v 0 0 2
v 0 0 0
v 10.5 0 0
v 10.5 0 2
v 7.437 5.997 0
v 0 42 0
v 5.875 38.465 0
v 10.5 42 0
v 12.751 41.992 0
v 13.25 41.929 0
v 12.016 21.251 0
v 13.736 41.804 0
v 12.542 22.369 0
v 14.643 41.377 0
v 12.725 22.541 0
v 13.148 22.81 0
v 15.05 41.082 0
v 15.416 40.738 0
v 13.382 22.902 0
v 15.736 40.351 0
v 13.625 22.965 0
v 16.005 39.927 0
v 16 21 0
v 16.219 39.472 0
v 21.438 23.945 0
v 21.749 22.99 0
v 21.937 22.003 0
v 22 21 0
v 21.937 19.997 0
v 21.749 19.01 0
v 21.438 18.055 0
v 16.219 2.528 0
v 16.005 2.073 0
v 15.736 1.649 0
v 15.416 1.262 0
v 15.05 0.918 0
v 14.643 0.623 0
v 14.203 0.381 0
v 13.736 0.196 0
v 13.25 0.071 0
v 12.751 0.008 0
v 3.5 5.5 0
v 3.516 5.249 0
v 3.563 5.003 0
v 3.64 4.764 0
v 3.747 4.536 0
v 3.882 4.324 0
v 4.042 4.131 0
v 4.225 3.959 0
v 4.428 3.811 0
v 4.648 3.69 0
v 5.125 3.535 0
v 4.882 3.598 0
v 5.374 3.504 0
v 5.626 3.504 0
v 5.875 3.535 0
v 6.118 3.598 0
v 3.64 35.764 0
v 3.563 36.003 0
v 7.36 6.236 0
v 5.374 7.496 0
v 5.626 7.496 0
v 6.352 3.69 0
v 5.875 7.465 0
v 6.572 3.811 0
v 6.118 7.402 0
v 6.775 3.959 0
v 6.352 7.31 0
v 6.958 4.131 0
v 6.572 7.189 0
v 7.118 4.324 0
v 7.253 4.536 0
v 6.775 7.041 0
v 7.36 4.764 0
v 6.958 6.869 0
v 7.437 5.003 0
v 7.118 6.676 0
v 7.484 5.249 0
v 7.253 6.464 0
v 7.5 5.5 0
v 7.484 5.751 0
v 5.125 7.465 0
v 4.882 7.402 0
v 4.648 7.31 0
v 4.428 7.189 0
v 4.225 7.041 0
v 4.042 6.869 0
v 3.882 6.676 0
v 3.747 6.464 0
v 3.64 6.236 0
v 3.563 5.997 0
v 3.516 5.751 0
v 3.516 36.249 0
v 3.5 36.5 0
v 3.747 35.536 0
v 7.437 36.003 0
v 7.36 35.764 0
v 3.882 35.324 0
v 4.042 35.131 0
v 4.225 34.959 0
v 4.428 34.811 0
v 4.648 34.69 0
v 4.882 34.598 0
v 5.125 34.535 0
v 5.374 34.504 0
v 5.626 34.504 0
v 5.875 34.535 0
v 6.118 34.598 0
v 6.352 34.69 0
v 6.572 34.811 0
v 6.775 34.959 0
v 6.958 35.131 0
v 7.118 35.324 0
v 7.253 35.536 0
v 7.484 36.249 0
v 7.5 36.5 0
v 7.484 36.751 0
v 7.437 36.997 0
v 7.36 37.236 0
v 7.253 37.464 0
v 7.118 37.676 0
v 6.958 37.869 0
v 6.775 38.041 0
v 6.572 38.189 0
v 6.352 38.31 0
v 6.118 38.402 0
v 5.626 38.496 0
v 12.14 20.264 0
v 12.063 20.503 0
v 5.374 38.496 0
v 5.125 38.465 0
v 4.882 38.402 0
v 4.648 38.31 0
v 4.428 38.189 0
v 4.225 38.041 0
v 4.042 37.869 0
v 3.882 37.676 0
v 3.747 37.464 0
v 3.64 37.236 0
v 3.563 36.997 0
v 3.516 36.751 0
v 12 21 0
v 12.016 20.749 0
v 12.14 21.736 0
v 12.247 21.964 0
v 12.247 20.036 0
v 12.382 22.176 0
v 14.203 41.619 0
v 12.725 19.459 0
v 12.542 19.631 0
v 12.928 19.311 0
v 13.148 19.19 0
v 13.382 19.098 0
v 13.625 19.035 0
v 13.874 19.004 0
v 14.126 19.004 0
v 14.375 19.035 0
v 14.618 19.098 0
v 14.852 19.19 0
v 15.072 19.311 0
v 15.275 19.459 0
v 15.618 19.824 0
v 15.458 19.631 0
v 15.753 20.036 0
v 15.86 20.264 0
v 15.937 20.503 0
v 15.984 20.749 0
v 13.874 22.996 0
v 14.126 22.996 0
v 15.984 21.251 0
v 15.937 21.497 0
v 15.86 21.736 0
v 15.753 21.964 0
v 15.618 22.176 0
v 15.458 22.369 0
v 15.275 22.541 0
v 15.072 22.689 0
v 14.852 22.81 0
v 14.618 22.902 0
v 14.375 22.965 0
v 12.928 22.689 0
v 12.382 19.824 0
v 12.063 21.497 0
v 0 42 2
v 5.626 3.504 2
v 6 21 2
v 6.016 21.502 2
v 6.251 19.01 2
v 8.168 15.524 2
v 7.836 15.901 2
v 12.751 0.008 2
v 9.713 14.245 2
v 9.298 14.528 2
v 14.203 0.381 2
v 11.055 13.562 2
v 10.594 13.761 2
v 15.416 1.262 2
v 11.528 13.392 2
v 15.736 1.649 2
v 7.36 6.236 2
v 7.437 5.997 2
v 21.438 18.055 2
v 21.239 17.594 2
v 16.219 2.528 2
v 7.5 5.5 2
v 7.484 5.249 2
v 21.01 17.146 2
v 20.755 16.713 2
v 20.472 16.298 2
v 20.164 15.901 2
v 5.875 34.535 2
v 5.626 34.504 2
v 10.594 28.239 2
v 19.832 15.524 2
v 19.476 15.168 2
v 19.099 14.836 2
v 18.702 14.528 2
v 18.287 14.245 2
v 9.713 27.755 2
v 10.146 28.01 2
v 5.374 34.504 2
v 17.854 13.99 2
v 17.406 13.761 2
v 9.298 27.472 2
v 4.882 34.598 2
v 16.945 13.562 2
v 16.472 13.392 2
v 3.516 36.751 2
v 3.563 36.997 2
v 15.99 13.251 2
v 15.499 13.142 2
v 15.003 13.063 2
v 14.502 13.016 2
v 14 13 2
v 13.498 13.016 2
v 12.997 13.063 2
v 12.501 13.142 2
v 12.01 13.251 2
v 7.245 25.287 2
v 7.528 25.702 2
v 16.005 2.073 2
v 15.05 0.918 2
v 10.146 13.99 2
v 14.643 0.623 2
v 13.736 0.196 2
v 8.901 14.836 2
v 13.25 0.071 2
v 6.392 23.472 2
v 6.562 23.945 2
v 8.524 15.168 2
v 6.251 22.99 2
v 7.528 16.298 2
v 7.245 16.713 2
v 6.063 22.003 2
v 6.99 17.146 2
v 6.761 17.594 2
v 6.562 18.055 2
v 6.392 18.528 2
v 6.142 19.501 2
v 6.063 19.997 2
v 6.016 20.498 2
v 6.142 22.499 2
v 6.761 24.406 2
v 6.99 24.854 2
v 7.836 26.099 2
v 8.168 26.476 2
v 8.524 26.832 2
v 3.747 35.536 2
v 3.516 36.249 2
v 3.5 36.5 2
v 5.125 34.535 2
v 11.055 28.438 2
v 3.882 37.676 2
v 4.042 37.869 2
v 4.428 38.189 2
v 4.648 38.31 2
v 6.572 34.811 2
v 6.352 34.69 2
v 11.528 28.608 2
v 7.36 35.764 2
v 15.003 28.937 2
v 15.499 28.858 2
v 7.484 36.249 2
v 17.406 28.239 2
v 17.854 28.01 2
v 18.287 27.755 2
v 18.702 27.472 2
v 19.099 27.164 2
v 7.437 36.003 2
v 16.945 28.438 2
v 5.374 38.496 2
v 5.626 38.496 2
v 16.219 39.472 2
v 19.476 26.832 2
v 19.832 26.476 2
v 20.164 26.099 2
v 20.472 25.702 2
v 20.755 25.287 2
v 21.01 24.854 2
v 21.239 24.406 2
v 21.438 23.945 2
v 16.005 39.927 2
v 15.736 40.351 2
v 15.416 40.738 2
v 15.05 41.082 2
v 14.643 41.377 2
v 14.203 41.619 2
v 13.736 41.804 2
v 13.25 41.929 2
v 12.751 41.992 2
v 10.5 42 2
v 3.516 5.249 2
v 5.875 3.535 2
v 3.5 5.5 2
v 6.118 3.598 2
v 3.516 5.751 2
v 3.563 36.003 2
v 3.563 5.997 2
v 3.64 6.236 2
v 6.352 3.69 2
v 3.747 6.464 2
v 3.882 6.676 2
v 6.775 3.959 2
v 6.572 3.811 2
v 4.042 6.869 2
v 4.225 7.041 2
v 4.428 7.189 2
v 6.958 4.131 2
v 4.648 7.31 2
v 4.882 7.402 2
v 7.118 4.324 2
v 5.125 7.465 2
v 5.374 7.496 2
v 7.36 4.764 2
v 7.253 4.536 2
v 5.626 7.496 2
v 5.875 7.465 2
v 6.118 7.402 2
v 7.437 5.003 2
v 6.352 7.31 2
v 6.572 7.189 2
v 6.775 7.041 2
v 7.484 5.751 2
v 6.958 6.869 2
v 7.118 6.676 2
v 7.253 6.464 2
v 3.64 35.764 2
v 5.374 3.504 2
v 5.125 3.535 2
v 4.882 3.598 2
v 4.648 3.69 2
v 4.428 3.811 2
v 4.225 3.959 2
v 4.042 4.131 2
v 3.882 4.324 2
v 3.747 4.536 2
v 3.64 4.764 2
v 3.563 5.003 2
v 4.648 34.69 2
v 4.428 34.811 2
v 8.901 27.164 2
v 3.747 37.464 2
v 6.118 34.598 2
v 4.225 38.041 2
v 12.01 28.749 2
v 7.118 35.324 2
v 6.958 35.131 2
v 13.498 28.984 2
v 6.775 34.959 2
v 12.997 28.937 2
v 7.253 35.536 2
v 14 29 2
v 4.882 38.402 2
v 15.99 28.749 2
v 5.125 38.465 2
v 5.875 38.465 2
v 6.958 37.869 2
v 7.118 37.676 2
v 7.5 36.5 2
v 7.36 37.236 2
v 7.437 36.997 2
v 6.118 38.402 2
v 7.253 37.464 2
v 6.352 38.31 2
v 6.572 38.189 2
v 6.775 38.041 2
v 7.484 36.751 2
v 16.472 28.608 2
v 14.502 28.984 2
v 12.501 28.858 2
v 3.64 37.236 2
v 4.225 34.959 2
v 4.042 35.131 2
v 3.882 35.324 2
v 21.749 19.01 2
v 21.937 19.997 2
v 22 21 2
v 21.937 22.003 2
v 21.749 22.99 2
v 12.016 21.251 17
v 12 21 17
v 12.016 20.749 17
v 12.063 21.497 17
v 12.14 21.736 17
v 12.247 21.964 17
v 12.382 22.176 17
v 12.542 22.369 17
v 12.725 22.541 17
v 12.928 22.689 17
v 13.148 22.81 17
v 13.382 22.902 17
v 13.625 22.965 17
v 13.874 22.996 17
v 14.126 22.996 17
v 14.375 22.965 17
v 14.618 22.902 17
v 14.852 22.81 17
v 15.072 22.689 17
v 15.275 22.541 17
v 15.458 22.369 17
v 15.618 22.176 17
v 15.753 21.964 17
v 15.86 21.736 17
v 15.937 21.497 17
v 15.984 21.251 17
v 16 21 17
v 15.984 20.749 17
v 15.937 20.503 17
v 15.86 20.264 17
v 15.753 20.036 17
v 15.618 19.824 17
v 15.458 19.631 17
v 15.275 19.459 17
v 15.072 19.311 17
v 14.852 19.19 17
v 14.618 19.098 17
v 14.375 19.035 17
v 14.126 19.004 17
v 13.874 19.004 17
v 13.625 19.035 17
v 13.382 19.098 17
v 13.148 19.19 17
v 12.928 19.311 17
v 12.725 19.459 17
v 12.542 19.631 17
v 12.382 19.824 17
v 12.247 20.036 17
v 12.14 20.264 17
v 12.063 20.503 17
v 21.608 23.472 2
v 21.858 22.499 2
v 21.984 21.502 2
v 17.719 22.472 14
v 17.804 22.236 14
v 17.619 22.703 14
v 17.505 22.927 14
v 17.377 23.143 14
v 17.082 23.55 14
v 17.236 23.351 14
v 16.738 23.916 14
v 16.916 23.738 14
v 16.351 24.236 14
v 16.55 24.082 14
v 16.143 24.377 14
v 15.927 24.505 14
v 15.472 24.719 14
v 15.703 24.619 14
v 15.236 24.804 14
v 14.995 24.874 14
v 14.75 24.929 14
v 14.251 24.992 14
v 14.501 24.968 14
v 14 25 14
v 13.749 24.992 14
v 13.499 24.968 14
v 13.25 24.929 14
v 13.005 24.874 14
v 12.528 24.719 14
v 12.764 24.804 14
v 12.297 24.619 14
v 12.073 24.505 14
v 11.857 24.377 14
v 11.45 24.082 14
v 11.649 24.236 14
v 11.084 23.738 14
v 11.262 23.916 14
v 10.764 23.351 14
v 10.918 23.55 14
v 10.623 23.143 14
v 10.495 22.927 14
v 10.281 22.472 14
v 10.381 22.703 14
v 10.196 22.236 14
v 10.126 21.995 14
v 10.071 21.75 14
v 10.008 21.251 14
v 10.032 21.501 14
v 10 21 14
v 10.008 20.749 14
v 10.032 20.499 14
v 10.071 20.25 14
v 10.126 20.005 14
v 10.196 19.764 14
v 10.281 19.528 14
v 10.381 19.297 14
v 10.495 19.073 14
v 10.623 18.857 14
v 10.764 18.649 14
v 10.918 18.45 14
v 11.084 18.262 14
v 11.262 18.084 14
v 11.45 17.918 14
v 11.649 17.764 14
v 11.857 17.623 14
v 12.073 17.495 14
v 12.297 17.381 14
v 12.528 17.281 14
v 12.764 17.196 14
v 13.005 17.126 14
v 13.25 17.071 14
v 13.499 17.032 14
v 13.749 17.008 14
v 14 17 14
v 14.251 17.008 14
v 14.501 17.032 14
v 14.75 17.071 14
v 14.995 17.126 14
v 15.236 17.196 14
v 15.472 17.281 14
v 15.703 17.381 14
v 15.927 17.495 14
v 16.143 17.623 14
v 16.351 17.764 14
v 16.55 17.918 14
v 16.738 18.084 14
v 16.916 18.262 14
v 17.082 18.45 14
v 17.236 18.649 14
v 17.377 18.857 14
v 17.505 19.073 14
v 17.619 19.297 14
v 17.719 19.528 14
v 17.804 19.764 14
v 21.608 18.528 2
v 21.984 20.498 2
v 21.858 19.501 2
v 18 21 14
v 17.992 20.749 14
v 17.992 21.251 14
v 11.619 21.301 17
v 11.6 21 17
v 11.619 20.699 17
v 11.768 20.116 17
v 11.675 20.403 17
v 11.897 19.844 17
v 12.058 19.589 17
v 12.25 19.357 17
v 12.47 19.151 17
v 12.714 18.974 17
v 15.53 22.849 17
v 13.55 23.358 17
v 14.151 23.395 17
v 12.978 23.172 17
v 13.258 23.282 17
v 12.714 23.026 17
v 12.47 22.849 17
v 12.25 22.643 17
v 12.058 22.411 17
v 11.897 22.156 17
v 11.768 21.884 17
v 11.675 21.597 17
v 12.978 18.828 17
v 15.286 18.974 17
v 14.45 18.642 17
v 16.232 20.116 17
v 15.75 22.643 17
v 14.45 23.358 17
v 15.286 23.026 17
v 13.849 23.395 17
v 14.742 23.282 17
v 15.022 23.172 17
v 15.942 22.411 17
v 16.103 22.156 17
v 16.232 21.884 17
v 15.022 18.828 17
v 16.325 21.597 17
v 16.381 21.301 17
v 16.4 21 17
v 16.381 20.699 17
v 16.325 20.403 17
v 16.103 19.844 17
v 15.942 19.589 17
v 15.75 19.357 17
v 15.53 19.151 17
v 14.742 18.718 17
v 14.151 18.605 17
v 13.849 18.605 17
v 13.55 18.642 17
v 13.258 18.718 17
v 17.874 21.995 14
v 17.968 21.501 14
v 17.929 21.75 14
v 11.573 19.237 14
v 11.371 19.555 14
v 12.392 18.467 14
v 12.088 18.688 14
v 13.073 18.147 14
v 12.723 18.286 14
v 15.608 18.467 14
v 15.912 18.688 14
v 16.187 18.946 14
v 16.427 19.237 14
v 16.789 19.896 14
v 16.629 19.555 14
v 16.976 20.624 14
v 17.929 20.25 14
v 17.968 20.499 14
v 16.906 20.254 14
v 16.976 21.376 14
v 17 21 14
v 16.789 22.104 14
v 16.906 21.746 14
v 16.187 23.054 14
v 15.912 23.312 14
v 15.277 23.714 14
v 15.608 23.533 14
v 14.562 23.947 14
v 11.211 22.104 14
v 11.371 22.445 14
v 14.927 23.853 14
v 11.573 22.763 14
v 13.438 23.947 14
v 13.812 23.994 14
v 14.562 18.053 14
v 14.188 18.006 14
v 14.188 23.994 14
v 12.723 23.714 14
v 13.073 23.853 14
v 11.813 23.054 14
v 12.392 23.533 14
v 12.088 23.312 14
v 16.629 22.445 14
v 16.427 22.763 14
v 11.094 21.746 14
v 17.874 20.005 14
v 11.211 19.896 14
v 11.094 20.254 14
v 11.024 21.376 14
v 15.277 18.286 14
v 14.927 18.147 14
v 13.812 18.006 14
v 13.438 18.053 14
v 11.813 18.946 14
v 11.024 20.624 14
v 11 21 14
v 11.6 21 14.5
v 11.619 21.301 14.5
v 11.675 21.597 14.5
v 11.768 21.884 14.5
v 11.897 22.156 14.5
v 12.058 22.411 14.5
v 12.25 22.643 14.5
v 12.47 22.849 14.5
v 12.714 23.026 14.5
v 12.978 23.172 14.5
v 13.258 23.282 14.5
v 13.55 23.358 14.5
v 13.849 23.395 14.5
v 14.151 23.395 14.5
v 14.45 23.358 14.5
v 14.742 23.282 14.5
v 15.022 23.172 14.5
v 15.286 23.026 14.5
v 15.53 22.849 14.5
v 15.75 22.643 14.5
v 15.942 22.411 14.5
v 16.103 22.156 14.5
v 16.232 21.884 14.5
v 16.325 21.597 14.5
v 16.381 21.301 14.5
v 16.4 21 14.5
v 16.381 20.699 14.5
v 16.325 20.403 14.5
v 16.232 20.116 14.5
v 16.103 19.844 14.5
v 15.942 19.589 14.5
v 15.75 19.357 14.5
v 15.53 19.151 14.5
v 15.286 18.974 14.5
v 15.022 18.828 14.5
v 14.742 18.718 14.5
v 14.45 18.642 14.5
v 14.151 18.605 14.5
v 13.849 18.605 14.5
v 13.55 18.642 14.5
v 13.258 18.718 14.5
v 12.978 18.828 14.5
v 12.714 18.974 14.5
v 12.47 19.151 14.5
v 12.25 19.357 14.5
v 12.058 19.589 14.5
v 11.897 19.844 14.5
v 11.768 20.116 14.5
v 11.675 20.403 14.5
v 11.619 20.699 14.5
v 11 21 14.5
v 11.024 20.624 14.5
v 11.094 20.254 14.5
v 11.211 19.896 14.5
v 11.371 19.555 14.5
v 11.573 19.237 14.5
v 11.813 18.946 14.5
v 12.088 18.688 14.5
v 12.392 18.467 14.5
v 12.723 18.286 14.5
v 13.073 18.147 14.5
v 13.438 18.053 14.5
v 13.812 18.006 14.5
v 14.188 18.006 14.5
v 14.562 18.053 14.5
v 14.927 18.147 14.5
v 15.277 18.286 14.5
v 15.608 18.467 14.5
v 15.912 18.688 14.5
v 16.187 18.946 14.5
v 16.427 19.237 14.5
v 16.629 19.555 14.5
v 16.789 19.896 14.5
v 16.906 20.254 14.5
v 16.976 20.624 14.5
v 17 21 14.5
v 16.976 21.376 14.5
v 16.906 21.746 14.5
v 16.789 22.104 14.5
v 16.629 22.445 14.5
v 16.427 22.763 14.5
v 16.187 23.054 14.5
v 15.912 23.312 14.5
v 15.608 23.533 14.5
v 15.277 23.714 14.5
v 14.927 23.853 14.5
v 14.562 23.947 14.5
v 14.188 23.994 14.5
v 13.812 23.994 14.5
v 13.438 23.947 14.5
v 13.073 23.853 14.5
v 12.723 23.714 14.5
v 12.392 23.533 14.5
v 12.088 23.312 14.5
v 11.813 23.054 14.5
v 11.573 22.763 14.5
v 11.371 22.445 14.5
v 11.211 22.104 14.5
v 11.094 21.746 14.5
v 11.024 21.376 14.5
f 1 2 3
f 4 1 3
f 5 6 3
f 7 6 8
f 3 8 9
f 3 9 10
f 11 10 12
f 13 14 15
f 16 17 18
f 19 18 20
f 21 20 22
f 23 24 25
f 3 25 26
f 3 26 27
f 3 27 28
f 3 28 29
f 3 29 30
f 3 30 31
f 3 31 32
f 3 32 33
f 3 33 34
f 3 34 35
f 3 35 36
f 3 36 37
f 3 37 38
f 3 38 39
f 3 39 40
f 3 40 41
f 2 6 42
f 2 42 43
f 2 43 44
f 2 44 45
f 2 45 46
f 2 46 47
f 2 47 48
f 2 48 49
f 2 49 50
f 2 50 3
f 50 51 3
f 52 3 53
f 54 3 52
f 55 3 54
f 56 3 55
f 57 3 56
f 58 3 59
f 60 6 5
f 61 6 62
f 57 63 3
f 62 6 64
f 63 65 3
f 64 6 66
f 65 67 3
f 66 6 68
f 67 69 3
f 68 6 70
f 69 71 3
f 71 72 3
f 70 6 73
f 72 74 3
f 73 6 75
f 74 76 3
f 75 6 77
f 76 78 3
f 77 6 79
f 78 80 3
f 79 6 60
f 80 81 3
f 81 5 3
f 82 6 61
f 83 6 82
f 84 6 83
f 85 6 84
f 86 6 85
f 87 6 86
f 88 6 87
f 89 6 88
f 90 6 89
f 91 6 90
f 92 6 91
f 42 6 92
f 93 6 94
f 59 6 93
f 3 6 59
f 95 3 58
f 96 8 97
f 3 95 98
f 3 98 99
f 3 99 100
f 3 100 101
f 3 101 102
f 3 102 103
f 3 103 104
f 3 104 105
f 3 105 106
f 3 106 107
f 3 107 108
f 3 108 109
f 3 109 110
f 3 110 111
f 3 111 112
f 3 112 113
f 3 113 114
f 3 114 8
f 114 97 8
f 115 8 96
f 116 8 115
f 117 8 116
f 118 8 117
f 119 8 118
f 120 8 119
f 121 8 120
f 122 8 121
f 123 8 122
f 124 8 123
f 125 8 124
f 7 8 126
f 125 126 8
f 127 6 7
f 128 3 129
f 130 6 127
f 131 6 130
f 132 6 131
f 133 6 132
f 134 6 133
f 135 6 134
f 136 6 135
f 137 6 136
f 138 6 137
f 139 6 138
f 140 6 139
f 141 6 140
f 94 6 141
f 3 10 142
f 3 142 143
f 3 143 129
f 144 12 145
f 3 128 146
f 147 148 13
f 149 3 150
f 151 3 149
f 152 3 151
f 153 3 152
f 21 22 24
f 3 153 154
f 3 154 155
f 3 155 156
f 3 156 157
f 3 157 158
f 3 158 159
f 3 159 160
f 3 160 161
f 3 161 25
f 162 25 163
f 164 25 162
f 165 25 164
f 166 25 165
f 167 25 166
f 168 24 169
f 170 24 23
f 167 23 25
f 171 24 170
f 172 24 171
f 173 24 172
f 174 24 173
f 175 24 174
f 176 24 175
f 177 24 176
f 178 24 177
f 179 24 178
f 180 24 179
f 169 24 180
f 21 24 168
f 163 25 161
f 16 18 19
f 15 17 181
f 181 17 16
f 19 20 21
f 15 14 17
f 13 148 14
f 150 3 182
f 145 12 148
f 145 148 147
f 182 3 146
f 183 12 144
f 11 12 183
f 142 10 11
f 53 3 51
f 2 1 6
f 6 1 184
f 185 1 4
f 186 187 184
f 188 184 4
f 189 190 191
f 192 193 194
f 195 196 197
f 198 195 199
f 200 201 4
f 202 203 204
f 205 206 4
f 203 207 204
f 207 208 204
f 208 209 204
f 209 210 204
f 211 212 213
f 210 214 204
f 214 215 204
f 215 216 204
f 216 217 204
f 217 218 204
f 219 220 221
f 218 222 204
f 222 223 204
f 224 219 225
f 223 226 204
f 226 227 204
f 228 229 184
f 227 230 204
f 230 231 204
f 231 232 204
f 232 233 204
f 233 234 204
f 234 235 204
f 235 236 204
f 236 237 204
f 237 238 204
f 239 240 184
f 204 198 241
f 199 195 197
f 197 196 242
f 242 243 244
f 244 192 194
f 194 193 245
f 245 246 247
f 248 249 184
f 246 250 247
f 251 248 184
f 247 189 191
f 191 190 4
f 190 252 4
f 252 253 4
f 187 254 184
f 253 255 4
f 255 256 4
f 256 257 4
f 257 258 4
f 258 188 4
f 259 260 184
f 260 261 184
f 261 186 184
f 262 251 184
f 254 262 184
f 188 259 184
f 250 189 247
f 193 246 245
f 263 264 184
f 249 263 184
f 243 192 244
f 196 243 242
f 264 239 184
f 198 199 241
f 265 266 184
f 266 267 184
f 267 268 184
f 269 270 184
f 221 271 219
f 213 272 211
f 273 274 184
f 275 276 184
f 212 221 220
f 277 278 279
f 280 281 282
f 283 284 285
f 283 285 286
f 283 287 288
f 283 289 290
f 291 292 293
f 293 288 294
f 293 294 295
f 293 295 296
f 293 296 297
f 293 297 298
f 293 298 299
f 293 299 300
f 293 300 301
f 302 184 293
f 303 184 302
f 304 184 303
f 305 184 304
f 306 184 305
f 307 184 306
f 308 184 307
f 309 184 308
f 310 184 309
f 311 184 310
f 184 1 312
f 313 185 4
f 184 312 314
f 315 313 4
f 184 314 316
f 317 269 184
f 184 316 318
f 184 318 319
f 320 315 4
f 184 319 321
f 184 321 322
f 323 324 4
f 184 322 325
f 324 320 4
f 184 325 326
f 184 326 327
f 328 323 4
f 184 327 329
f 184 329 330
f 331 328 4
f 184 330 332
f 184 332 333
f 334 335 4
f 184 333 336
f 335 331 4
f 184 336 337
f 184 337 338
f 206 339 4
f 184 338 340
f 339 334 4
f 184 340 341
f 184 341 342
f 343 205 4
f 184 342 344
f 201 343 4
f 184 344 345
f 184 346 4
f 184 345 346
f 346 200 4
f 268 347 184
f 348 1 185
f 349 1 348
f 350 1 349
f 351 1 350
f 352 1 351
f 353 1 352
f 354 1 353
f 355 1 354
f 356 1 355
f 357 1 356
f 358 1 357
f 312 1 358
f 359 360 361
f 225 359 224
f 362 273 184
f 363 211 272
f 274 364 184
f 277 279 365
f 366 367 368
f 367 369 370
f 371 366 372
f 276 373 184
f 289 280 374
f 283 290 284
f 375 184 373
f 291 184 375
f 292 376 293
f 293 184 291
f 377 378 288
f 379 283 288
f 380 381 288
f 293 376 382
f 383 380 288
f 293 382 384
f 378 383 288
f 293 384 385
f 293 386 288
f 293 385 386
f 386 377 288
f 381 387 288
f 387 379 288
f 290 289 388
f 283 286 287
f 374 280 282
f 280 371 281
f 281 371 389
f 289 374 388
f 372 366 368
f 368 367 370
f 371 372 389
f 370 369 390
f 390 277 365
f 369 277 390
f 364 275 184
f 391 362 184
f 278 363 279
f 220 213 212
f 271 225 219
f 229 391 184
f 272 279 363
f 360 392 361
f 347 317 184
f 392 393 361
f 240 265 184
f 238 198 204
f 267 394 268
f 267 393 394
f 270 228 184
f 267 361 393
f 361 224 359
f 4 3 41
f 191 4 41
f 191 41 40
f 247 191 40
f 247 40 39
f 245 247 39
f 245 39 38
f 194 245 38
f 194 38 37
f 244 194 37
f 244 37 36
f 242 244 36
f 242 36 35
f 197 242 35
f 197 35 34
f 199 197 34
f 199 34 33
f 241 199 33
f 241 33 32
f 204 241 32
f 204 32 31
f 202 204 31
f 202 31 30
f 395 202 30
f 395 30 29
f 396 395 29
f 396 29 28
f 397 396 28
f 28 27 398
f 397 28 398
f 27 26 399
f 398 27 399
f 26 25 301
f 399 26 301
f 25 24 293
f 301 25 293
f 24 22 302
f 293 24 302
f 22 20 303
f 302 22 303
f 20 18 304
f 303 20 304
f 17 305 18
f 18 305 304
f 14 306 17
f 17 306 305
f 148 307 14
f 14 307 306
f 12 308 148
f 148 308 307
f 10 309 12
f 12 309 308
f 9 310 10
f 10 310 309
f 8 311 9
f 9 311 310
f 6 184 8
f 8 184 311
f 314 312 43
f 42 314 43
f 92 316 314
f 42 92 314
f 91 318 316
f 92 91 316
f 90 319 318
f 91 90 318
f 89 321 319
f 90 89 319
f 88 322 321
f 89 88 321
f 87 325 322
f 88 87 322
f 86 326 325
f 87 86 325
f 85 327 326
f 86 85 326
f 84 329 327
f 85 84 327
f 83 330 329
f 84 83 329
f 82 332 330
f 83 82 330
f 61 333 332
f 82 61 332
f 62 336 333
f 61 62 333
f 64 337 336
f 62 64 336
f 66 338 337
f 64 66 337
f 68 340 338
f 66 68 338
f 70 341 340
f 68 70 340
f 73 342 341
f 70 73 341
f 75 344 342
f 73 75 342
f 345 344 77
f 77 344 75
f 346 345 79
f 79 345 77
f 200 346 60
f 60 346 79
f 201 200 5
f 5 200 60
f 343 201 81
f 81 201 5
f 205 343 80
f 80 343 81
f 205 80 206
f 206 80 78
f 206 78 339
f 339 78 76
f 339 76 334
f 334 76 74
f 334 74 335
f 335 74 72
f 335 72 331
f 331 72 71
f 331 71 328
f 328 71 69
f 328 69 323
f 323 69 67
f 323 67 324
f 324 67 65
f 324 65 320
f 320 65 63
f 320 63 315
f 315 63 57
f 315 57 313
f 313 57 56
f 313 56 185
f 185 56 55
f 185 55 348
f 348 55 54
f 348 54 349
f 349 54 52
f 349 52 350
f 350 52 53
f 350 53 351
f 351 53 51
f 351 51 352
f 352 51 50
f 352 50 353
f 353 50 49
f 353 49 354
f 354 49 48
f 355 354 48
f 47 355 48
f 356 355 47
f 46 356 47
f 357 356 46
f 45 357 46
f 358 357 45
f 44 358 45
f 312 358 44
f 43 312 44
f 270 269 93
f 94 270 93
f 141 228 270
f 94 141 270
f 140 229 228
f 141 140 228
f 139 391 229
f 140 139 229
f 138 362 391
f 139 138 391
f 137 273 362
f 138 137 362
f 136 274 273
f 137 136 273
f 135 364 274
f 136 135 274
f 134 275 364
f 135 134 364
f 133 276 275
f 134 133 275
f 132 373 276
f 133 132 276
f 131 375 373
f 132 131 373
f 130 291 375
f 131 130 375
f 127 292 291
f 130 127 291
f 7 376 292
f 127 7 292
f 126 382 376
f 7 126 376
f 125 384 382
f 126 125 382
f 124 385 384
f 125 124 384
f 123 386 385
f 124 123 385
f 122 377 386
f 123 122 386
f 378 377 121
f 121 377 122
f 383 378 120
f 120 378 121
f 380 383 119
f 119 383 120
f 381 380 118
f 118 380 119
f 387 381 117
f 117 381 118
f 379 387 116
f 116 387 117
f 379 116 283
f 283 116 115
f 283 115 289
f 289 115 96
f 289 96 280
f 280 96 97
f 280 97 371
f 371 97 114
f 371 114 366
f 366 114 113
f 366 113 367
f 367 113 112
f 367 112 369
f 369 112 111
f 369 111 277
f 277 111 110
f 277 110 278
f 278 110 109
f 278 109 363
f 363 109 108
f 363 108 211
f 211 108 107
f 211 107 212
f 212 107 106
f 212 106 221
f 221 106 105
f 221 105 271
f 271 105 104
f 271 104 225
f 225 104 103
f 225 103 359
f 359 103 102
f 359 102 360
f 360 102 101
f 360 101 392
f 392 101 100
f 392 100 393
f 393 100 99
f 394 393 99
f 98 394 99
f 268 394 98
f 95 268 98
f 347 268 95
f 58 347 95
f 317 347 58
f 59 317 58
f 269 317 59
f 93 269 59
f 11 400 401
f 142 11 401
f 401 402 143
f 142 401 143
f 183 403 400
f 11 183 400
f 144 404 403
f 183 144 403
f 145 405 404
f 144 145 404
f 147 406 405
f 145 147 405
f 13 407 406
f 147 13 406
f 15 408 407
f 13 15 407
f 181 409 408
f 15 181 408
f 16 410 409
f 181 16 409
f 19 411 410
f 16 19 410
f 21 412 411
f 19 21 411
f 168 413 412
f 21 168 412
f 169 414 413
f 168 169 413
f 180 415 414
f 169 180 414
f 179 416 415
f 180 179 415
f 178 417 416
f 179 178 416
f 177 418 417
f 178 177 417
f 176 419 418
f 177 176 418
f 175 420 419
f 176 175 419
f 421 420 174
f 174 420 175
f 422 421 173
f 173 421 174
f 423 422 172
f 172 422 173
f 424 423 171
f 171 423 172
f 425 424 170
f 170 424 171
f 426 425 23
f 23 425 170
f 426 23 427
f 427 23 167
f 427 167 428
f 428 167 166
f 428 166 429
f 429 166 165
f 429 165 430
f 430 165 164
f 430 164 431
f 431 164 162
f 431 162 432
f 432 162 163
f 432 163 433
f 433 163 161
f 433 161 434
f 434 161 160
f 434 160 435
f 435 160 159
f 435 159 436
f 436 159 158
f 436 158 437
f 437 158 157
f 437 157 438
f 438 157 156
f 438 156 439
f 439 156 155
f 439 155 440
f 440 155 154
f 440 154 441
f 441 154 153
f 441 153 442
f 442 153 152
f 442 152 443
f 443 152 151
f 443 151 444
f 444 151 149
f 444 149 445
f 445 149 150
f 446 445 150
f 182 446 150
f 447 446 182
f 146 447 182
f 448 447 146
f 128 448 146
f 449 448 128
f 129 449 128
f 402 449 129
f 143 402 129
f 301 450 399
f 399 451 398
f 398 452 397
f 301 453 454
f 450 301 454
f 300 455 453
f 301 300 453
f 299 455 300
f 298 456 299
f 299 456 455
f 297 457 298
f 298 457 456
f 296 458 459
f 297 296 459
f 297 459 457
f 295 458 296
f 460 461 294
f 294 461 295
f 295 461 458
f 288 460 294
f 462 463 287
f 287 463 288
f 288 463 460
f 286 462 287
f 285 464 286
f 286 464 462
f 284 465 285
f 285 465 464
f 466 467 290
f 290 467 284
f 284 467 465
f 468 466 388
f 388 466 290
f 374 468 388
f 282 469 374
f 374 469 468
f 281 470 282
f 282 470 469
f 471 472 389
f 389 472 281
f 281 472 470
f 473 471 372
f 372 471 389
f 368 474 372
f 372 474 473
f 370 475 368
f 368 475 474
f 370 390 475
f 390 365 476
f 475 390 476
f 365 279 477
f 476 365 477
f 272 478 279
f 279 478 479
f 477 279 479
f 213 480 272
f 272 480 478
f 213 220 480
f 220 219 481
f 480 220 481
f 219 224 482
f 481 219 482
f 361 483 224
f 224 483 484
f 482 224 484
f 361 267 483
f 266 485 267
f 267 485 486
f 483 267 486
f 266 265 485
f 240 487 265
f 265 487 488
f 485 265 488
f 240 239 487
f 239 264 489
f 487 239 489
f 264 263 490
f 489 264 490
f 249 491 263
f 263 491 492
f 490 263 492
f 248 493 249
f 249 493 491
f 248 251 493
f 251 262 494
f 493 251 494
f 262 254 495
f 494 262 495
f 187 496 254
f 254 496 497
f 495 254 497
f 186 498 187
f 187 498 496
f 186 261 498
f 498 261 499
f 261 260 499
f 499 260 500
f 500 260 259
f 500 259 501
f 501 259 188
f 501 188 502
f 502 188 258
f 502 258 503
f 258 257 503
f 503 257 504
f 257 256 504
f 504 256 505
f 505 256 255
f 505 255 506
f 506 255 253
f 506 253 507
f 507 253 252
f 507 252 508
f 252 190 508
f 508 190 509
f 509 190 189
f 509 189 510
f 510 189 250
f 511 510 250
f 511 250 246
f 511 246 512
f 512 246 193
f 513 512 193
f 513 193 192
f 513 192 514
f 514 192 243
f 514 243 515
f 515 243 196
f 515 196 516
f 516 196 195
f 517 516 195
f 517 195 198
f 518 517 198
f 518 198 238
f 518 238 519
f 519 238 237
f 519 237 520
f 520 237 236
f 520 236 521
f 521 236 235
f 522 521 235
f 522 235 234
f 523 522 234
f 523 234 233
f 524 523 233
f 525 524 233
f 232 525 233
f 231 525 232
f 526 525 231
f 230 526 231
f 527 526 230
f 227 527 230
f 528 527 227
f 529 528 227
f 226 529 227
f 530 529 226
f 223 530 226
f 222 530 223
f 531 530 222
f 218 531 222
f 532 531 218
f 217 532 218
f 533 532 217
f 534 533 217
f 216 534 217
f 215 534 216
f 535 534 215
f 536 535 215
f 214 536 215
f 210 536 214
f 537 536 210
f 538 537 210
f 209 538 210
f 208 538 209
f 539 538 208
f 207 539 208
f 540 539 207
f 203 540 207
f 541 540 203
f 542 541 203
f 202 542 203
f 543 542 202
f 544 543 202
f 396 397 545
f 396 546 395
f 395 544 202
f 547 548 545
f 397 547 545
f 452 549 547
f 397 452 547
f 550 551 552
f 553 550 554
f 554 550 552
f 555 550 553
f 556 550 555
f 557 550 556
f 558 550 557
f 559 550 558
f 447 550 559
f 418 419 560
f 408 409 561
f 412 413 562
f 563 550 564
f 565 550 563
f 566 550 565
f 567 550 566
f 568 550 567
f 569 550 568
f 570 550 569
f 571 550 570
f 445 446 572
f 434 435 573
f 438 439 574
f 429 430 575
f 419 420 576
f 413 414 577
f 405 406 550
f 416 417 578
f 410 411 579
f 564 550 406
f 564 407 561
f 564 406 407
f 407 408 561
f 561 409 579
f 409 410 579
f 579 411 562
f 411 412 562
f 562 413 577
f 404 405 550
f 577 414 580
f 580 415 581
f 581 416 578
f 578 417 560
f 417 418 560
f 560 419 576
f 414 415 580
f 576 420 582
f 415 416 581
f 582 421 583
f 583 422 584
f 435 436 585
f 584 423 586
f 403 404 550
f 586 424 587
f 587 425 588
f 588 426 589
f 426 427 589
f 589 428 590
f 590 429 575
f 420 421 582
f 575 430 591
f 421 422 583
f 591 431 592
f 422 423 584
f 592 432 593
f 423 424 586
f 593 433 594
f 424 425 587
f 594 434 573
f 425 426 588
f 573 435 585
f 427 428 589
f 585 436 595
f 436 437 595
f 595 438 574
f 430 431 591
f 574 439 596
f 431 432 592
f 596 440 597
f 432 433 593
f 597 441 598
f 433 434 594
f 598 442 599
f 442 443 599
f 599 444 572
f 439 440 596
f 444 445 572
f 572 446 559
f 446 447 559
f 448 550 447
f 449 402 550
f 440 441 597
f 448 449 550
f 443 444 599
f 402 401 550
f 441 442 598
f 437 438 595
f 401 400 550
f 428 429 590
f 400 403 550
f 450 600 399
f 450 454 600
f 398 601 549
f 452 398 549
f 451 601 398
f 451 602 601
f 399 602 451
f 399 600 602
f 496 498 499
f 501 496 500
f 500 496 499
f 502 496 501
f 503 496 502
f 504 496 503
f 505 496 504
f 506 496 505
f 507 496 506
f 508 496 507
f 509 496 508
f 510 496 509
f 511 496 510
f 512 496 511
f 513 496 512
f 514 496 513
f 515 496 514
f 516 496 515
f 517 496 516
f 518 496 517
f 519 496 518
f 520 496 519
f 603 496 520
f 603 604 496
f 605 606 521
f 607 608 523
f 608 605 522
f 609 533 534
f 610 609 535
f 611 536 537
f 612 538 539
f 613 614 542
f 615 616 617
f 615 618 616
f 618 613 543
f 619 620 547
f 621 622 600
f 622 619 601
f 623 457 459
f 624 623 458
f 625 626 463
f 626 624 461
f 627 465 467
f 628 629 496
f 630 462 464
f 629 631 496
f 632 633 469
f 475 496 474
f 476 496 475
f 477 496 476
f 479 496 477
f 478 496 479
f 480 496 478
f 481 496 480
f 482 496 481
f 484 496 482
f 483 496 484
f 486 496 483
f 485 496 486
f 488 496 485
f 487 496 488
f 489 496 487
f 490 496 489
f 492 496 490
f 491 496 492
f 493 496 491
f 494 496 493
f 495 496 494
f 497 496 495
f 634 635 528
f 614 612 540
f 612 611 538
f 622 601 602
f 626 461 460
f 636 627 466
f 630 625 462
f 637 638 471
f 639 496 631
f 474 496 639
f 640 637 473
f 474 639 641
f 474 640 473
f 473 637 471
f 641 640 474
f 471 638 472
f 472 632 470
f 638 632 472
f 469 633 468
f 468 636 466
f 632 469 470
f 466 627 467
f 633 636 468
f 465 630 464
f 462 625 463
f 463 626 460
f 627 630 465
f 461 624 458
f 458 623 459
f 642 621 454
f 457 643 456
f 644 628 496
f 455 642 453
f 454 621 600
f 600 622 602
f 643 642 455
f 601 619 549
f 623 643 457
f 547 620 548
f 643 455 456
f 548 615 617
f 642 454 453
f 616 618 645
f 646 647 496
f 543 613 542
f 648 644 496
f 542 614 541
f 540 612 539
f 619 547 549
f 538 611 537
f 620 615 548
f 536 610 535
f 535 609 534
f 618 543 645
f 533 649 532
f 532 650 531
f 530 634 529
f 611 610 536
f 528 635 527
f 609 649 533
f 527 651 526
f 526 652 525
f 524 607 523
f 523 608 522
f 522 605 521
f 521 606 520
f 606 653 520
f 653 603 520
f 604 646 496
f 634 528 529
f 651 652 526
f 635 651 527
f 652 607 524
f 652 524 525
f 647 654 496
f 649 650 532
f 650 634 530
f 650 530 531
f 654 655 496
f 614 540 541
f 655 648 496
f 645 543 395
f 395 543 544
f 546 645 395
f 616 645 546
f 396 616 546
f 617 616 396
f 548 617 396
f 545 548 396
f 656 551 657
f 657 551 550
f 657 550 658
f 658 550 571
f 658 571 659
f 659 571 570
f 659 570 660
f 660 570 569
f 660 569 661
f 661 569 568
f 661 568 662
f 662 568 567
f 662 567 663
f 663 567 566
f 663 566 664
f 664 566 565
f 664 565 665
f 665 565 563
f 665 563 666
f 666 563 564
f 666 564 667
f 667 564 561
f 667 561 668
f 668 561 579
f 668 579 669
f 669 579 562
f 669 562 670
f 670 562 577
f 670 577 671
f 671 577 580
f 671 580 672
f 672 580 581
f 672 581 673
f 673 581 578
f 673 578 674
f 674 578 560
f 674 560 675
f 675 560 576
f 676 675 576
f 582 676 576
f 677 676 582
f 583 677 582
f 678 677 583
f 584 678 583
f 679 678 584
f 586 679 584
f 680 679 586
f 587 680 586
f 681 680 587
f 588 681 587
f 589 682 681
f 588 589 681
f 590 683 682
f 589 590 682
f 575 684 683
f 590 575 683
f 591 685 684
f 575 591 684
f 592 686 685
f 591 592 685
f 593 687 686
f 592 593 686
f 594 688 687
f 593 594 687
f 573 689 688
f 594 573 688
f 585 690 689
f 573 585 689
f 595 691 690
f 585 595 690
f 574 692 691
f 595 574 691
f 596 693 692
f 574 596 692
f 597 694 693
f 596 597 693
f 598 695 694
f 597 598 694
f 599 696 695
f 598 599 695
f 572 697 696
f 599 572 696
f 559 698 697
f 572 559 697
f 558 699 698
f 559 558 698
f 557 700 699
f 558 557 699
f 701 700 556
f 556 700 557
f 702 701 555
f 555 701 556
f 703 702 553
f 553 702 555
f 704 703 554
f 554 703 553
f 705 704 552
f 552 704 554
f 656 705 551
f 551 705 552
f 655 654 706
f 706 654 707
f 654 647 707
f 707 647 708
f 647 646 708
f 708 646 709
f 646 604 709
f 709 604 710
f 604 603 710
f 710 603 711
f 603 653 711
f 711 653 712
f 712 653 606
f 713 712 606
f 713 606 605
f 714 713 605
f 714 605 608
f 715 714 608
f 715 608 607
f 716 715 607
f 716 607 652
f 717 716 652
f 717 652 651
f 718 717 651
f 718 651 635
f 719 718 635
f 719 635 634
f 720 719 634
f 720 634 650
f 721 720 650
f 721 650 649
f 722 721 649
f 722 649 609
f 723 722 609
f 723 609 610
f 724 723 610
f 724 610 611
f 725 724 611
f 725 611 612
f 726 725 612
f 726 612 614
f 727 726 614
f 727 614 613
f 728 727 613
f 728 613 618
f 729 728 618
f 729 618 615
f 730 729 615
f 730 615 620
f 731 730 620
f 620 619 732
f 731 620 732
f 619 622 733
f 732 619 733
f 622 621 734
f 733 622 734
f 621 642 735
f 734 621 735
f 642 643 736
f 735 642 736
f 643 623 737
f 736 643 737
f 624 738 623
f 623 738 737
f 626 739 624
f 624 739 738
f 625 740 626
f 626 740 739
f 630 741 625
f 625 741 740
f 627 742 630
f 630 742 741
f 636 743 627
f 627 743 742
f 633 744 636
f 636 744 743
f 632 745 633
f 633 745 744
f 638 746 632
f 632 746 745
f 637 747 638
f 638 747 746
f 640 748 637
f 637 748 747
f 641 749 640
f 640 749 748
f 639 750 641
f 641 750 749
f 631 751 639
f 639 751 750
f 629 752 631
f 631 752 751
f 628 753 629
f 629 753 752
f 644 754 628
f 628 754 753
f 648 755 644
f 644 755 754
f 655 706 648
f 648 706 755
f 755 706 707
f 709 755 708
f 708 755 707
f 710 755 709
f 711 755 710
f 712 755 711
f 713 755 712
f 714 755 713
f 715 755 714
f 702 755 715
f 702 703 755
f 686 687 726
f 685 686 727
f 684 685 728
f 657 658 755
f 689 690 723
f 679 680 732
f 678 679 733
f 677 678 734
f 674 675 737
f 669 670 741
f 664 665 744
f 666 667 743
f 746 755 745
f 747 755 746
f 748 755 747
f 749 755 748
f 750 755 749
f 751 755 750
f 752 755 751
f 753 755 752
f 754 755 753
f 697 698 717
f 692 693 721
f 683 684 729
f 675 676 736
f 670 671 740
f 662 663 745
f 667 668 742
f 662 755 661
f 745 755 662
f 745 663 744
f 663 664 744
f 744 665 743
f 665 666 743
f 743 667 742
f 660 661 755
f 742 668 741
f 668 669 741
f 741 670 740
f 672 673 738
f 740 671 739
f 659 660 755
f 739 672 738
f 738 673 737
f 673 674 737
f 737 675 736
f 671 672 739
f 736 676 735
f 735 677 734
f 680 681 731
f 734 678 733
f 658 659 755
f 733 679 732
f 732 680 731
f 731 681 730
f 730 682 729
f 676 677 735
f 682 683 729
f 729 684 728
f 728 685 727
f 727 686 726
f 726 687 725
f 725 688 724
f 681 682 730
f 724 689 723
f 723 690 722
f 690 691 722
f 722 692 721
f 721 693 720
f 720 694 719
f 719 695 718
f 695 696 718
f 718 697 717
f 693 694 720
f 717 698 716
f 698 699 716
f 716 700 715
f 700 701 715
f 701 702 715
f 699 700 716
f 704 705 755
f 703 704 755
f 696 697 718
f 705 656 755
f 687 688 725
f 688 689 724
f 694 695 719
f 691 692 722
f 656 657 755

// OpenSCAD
r_m3=2;
r_ecrou_m3=3.3;
r_int=2.4;
ep_roul=5;
ep=2;
l=42;
height=30;
r_arr=4;

module retour_x(){
	difference(){
		union(){
		hull(){
			cube([l/4,l,ep]);
			translate([l/4+r_arr-2,r_arr,0]){cylinder(r=r_arr, h=ep, $fn=50);}
			translate([l/2-7,l/2,0]){cylinder(r=8, h=ep, $fn=50);}
			translate([l/4+r_arr-2,l-r_arr,0]){cylinder(r=r_arr, h=ep, $fn=50);}
		}
		
		//translate([l/4,l/2,0]){cylinder(r=l/2, h=ep, $fn=100);}

		translate([l/2-7,l/2,ep]){cylinder(r1=8, r2=4,h=height/2-ep_roul/2-0.5, $fn=100);}
		translate([l/2-7,l/2,ep+height/2-ep_roul/2-0.5]){cylinder(r=3, h=0.5, $fn=50);}

		translate([l/2-7,l/2,ep+height/2-2-ep_roul/2+2]){cylinder(r=r_int, h=ep_roul/2, $fn=50);}

		}
	
		//trous pour fixation
		translate([5.5,5.5,-5]){cylinder(r=r_m3, h=15, $fn=50);}
		translate([5.5,l-5.5,-5]){cylinder(r=r_m3, h=15, $fn=50);}
		
		translate([l/2-7,l/2,-5]){cylinder(r=r_m3, h=50, $fn=50);}

		
	}


}
retour_x();
